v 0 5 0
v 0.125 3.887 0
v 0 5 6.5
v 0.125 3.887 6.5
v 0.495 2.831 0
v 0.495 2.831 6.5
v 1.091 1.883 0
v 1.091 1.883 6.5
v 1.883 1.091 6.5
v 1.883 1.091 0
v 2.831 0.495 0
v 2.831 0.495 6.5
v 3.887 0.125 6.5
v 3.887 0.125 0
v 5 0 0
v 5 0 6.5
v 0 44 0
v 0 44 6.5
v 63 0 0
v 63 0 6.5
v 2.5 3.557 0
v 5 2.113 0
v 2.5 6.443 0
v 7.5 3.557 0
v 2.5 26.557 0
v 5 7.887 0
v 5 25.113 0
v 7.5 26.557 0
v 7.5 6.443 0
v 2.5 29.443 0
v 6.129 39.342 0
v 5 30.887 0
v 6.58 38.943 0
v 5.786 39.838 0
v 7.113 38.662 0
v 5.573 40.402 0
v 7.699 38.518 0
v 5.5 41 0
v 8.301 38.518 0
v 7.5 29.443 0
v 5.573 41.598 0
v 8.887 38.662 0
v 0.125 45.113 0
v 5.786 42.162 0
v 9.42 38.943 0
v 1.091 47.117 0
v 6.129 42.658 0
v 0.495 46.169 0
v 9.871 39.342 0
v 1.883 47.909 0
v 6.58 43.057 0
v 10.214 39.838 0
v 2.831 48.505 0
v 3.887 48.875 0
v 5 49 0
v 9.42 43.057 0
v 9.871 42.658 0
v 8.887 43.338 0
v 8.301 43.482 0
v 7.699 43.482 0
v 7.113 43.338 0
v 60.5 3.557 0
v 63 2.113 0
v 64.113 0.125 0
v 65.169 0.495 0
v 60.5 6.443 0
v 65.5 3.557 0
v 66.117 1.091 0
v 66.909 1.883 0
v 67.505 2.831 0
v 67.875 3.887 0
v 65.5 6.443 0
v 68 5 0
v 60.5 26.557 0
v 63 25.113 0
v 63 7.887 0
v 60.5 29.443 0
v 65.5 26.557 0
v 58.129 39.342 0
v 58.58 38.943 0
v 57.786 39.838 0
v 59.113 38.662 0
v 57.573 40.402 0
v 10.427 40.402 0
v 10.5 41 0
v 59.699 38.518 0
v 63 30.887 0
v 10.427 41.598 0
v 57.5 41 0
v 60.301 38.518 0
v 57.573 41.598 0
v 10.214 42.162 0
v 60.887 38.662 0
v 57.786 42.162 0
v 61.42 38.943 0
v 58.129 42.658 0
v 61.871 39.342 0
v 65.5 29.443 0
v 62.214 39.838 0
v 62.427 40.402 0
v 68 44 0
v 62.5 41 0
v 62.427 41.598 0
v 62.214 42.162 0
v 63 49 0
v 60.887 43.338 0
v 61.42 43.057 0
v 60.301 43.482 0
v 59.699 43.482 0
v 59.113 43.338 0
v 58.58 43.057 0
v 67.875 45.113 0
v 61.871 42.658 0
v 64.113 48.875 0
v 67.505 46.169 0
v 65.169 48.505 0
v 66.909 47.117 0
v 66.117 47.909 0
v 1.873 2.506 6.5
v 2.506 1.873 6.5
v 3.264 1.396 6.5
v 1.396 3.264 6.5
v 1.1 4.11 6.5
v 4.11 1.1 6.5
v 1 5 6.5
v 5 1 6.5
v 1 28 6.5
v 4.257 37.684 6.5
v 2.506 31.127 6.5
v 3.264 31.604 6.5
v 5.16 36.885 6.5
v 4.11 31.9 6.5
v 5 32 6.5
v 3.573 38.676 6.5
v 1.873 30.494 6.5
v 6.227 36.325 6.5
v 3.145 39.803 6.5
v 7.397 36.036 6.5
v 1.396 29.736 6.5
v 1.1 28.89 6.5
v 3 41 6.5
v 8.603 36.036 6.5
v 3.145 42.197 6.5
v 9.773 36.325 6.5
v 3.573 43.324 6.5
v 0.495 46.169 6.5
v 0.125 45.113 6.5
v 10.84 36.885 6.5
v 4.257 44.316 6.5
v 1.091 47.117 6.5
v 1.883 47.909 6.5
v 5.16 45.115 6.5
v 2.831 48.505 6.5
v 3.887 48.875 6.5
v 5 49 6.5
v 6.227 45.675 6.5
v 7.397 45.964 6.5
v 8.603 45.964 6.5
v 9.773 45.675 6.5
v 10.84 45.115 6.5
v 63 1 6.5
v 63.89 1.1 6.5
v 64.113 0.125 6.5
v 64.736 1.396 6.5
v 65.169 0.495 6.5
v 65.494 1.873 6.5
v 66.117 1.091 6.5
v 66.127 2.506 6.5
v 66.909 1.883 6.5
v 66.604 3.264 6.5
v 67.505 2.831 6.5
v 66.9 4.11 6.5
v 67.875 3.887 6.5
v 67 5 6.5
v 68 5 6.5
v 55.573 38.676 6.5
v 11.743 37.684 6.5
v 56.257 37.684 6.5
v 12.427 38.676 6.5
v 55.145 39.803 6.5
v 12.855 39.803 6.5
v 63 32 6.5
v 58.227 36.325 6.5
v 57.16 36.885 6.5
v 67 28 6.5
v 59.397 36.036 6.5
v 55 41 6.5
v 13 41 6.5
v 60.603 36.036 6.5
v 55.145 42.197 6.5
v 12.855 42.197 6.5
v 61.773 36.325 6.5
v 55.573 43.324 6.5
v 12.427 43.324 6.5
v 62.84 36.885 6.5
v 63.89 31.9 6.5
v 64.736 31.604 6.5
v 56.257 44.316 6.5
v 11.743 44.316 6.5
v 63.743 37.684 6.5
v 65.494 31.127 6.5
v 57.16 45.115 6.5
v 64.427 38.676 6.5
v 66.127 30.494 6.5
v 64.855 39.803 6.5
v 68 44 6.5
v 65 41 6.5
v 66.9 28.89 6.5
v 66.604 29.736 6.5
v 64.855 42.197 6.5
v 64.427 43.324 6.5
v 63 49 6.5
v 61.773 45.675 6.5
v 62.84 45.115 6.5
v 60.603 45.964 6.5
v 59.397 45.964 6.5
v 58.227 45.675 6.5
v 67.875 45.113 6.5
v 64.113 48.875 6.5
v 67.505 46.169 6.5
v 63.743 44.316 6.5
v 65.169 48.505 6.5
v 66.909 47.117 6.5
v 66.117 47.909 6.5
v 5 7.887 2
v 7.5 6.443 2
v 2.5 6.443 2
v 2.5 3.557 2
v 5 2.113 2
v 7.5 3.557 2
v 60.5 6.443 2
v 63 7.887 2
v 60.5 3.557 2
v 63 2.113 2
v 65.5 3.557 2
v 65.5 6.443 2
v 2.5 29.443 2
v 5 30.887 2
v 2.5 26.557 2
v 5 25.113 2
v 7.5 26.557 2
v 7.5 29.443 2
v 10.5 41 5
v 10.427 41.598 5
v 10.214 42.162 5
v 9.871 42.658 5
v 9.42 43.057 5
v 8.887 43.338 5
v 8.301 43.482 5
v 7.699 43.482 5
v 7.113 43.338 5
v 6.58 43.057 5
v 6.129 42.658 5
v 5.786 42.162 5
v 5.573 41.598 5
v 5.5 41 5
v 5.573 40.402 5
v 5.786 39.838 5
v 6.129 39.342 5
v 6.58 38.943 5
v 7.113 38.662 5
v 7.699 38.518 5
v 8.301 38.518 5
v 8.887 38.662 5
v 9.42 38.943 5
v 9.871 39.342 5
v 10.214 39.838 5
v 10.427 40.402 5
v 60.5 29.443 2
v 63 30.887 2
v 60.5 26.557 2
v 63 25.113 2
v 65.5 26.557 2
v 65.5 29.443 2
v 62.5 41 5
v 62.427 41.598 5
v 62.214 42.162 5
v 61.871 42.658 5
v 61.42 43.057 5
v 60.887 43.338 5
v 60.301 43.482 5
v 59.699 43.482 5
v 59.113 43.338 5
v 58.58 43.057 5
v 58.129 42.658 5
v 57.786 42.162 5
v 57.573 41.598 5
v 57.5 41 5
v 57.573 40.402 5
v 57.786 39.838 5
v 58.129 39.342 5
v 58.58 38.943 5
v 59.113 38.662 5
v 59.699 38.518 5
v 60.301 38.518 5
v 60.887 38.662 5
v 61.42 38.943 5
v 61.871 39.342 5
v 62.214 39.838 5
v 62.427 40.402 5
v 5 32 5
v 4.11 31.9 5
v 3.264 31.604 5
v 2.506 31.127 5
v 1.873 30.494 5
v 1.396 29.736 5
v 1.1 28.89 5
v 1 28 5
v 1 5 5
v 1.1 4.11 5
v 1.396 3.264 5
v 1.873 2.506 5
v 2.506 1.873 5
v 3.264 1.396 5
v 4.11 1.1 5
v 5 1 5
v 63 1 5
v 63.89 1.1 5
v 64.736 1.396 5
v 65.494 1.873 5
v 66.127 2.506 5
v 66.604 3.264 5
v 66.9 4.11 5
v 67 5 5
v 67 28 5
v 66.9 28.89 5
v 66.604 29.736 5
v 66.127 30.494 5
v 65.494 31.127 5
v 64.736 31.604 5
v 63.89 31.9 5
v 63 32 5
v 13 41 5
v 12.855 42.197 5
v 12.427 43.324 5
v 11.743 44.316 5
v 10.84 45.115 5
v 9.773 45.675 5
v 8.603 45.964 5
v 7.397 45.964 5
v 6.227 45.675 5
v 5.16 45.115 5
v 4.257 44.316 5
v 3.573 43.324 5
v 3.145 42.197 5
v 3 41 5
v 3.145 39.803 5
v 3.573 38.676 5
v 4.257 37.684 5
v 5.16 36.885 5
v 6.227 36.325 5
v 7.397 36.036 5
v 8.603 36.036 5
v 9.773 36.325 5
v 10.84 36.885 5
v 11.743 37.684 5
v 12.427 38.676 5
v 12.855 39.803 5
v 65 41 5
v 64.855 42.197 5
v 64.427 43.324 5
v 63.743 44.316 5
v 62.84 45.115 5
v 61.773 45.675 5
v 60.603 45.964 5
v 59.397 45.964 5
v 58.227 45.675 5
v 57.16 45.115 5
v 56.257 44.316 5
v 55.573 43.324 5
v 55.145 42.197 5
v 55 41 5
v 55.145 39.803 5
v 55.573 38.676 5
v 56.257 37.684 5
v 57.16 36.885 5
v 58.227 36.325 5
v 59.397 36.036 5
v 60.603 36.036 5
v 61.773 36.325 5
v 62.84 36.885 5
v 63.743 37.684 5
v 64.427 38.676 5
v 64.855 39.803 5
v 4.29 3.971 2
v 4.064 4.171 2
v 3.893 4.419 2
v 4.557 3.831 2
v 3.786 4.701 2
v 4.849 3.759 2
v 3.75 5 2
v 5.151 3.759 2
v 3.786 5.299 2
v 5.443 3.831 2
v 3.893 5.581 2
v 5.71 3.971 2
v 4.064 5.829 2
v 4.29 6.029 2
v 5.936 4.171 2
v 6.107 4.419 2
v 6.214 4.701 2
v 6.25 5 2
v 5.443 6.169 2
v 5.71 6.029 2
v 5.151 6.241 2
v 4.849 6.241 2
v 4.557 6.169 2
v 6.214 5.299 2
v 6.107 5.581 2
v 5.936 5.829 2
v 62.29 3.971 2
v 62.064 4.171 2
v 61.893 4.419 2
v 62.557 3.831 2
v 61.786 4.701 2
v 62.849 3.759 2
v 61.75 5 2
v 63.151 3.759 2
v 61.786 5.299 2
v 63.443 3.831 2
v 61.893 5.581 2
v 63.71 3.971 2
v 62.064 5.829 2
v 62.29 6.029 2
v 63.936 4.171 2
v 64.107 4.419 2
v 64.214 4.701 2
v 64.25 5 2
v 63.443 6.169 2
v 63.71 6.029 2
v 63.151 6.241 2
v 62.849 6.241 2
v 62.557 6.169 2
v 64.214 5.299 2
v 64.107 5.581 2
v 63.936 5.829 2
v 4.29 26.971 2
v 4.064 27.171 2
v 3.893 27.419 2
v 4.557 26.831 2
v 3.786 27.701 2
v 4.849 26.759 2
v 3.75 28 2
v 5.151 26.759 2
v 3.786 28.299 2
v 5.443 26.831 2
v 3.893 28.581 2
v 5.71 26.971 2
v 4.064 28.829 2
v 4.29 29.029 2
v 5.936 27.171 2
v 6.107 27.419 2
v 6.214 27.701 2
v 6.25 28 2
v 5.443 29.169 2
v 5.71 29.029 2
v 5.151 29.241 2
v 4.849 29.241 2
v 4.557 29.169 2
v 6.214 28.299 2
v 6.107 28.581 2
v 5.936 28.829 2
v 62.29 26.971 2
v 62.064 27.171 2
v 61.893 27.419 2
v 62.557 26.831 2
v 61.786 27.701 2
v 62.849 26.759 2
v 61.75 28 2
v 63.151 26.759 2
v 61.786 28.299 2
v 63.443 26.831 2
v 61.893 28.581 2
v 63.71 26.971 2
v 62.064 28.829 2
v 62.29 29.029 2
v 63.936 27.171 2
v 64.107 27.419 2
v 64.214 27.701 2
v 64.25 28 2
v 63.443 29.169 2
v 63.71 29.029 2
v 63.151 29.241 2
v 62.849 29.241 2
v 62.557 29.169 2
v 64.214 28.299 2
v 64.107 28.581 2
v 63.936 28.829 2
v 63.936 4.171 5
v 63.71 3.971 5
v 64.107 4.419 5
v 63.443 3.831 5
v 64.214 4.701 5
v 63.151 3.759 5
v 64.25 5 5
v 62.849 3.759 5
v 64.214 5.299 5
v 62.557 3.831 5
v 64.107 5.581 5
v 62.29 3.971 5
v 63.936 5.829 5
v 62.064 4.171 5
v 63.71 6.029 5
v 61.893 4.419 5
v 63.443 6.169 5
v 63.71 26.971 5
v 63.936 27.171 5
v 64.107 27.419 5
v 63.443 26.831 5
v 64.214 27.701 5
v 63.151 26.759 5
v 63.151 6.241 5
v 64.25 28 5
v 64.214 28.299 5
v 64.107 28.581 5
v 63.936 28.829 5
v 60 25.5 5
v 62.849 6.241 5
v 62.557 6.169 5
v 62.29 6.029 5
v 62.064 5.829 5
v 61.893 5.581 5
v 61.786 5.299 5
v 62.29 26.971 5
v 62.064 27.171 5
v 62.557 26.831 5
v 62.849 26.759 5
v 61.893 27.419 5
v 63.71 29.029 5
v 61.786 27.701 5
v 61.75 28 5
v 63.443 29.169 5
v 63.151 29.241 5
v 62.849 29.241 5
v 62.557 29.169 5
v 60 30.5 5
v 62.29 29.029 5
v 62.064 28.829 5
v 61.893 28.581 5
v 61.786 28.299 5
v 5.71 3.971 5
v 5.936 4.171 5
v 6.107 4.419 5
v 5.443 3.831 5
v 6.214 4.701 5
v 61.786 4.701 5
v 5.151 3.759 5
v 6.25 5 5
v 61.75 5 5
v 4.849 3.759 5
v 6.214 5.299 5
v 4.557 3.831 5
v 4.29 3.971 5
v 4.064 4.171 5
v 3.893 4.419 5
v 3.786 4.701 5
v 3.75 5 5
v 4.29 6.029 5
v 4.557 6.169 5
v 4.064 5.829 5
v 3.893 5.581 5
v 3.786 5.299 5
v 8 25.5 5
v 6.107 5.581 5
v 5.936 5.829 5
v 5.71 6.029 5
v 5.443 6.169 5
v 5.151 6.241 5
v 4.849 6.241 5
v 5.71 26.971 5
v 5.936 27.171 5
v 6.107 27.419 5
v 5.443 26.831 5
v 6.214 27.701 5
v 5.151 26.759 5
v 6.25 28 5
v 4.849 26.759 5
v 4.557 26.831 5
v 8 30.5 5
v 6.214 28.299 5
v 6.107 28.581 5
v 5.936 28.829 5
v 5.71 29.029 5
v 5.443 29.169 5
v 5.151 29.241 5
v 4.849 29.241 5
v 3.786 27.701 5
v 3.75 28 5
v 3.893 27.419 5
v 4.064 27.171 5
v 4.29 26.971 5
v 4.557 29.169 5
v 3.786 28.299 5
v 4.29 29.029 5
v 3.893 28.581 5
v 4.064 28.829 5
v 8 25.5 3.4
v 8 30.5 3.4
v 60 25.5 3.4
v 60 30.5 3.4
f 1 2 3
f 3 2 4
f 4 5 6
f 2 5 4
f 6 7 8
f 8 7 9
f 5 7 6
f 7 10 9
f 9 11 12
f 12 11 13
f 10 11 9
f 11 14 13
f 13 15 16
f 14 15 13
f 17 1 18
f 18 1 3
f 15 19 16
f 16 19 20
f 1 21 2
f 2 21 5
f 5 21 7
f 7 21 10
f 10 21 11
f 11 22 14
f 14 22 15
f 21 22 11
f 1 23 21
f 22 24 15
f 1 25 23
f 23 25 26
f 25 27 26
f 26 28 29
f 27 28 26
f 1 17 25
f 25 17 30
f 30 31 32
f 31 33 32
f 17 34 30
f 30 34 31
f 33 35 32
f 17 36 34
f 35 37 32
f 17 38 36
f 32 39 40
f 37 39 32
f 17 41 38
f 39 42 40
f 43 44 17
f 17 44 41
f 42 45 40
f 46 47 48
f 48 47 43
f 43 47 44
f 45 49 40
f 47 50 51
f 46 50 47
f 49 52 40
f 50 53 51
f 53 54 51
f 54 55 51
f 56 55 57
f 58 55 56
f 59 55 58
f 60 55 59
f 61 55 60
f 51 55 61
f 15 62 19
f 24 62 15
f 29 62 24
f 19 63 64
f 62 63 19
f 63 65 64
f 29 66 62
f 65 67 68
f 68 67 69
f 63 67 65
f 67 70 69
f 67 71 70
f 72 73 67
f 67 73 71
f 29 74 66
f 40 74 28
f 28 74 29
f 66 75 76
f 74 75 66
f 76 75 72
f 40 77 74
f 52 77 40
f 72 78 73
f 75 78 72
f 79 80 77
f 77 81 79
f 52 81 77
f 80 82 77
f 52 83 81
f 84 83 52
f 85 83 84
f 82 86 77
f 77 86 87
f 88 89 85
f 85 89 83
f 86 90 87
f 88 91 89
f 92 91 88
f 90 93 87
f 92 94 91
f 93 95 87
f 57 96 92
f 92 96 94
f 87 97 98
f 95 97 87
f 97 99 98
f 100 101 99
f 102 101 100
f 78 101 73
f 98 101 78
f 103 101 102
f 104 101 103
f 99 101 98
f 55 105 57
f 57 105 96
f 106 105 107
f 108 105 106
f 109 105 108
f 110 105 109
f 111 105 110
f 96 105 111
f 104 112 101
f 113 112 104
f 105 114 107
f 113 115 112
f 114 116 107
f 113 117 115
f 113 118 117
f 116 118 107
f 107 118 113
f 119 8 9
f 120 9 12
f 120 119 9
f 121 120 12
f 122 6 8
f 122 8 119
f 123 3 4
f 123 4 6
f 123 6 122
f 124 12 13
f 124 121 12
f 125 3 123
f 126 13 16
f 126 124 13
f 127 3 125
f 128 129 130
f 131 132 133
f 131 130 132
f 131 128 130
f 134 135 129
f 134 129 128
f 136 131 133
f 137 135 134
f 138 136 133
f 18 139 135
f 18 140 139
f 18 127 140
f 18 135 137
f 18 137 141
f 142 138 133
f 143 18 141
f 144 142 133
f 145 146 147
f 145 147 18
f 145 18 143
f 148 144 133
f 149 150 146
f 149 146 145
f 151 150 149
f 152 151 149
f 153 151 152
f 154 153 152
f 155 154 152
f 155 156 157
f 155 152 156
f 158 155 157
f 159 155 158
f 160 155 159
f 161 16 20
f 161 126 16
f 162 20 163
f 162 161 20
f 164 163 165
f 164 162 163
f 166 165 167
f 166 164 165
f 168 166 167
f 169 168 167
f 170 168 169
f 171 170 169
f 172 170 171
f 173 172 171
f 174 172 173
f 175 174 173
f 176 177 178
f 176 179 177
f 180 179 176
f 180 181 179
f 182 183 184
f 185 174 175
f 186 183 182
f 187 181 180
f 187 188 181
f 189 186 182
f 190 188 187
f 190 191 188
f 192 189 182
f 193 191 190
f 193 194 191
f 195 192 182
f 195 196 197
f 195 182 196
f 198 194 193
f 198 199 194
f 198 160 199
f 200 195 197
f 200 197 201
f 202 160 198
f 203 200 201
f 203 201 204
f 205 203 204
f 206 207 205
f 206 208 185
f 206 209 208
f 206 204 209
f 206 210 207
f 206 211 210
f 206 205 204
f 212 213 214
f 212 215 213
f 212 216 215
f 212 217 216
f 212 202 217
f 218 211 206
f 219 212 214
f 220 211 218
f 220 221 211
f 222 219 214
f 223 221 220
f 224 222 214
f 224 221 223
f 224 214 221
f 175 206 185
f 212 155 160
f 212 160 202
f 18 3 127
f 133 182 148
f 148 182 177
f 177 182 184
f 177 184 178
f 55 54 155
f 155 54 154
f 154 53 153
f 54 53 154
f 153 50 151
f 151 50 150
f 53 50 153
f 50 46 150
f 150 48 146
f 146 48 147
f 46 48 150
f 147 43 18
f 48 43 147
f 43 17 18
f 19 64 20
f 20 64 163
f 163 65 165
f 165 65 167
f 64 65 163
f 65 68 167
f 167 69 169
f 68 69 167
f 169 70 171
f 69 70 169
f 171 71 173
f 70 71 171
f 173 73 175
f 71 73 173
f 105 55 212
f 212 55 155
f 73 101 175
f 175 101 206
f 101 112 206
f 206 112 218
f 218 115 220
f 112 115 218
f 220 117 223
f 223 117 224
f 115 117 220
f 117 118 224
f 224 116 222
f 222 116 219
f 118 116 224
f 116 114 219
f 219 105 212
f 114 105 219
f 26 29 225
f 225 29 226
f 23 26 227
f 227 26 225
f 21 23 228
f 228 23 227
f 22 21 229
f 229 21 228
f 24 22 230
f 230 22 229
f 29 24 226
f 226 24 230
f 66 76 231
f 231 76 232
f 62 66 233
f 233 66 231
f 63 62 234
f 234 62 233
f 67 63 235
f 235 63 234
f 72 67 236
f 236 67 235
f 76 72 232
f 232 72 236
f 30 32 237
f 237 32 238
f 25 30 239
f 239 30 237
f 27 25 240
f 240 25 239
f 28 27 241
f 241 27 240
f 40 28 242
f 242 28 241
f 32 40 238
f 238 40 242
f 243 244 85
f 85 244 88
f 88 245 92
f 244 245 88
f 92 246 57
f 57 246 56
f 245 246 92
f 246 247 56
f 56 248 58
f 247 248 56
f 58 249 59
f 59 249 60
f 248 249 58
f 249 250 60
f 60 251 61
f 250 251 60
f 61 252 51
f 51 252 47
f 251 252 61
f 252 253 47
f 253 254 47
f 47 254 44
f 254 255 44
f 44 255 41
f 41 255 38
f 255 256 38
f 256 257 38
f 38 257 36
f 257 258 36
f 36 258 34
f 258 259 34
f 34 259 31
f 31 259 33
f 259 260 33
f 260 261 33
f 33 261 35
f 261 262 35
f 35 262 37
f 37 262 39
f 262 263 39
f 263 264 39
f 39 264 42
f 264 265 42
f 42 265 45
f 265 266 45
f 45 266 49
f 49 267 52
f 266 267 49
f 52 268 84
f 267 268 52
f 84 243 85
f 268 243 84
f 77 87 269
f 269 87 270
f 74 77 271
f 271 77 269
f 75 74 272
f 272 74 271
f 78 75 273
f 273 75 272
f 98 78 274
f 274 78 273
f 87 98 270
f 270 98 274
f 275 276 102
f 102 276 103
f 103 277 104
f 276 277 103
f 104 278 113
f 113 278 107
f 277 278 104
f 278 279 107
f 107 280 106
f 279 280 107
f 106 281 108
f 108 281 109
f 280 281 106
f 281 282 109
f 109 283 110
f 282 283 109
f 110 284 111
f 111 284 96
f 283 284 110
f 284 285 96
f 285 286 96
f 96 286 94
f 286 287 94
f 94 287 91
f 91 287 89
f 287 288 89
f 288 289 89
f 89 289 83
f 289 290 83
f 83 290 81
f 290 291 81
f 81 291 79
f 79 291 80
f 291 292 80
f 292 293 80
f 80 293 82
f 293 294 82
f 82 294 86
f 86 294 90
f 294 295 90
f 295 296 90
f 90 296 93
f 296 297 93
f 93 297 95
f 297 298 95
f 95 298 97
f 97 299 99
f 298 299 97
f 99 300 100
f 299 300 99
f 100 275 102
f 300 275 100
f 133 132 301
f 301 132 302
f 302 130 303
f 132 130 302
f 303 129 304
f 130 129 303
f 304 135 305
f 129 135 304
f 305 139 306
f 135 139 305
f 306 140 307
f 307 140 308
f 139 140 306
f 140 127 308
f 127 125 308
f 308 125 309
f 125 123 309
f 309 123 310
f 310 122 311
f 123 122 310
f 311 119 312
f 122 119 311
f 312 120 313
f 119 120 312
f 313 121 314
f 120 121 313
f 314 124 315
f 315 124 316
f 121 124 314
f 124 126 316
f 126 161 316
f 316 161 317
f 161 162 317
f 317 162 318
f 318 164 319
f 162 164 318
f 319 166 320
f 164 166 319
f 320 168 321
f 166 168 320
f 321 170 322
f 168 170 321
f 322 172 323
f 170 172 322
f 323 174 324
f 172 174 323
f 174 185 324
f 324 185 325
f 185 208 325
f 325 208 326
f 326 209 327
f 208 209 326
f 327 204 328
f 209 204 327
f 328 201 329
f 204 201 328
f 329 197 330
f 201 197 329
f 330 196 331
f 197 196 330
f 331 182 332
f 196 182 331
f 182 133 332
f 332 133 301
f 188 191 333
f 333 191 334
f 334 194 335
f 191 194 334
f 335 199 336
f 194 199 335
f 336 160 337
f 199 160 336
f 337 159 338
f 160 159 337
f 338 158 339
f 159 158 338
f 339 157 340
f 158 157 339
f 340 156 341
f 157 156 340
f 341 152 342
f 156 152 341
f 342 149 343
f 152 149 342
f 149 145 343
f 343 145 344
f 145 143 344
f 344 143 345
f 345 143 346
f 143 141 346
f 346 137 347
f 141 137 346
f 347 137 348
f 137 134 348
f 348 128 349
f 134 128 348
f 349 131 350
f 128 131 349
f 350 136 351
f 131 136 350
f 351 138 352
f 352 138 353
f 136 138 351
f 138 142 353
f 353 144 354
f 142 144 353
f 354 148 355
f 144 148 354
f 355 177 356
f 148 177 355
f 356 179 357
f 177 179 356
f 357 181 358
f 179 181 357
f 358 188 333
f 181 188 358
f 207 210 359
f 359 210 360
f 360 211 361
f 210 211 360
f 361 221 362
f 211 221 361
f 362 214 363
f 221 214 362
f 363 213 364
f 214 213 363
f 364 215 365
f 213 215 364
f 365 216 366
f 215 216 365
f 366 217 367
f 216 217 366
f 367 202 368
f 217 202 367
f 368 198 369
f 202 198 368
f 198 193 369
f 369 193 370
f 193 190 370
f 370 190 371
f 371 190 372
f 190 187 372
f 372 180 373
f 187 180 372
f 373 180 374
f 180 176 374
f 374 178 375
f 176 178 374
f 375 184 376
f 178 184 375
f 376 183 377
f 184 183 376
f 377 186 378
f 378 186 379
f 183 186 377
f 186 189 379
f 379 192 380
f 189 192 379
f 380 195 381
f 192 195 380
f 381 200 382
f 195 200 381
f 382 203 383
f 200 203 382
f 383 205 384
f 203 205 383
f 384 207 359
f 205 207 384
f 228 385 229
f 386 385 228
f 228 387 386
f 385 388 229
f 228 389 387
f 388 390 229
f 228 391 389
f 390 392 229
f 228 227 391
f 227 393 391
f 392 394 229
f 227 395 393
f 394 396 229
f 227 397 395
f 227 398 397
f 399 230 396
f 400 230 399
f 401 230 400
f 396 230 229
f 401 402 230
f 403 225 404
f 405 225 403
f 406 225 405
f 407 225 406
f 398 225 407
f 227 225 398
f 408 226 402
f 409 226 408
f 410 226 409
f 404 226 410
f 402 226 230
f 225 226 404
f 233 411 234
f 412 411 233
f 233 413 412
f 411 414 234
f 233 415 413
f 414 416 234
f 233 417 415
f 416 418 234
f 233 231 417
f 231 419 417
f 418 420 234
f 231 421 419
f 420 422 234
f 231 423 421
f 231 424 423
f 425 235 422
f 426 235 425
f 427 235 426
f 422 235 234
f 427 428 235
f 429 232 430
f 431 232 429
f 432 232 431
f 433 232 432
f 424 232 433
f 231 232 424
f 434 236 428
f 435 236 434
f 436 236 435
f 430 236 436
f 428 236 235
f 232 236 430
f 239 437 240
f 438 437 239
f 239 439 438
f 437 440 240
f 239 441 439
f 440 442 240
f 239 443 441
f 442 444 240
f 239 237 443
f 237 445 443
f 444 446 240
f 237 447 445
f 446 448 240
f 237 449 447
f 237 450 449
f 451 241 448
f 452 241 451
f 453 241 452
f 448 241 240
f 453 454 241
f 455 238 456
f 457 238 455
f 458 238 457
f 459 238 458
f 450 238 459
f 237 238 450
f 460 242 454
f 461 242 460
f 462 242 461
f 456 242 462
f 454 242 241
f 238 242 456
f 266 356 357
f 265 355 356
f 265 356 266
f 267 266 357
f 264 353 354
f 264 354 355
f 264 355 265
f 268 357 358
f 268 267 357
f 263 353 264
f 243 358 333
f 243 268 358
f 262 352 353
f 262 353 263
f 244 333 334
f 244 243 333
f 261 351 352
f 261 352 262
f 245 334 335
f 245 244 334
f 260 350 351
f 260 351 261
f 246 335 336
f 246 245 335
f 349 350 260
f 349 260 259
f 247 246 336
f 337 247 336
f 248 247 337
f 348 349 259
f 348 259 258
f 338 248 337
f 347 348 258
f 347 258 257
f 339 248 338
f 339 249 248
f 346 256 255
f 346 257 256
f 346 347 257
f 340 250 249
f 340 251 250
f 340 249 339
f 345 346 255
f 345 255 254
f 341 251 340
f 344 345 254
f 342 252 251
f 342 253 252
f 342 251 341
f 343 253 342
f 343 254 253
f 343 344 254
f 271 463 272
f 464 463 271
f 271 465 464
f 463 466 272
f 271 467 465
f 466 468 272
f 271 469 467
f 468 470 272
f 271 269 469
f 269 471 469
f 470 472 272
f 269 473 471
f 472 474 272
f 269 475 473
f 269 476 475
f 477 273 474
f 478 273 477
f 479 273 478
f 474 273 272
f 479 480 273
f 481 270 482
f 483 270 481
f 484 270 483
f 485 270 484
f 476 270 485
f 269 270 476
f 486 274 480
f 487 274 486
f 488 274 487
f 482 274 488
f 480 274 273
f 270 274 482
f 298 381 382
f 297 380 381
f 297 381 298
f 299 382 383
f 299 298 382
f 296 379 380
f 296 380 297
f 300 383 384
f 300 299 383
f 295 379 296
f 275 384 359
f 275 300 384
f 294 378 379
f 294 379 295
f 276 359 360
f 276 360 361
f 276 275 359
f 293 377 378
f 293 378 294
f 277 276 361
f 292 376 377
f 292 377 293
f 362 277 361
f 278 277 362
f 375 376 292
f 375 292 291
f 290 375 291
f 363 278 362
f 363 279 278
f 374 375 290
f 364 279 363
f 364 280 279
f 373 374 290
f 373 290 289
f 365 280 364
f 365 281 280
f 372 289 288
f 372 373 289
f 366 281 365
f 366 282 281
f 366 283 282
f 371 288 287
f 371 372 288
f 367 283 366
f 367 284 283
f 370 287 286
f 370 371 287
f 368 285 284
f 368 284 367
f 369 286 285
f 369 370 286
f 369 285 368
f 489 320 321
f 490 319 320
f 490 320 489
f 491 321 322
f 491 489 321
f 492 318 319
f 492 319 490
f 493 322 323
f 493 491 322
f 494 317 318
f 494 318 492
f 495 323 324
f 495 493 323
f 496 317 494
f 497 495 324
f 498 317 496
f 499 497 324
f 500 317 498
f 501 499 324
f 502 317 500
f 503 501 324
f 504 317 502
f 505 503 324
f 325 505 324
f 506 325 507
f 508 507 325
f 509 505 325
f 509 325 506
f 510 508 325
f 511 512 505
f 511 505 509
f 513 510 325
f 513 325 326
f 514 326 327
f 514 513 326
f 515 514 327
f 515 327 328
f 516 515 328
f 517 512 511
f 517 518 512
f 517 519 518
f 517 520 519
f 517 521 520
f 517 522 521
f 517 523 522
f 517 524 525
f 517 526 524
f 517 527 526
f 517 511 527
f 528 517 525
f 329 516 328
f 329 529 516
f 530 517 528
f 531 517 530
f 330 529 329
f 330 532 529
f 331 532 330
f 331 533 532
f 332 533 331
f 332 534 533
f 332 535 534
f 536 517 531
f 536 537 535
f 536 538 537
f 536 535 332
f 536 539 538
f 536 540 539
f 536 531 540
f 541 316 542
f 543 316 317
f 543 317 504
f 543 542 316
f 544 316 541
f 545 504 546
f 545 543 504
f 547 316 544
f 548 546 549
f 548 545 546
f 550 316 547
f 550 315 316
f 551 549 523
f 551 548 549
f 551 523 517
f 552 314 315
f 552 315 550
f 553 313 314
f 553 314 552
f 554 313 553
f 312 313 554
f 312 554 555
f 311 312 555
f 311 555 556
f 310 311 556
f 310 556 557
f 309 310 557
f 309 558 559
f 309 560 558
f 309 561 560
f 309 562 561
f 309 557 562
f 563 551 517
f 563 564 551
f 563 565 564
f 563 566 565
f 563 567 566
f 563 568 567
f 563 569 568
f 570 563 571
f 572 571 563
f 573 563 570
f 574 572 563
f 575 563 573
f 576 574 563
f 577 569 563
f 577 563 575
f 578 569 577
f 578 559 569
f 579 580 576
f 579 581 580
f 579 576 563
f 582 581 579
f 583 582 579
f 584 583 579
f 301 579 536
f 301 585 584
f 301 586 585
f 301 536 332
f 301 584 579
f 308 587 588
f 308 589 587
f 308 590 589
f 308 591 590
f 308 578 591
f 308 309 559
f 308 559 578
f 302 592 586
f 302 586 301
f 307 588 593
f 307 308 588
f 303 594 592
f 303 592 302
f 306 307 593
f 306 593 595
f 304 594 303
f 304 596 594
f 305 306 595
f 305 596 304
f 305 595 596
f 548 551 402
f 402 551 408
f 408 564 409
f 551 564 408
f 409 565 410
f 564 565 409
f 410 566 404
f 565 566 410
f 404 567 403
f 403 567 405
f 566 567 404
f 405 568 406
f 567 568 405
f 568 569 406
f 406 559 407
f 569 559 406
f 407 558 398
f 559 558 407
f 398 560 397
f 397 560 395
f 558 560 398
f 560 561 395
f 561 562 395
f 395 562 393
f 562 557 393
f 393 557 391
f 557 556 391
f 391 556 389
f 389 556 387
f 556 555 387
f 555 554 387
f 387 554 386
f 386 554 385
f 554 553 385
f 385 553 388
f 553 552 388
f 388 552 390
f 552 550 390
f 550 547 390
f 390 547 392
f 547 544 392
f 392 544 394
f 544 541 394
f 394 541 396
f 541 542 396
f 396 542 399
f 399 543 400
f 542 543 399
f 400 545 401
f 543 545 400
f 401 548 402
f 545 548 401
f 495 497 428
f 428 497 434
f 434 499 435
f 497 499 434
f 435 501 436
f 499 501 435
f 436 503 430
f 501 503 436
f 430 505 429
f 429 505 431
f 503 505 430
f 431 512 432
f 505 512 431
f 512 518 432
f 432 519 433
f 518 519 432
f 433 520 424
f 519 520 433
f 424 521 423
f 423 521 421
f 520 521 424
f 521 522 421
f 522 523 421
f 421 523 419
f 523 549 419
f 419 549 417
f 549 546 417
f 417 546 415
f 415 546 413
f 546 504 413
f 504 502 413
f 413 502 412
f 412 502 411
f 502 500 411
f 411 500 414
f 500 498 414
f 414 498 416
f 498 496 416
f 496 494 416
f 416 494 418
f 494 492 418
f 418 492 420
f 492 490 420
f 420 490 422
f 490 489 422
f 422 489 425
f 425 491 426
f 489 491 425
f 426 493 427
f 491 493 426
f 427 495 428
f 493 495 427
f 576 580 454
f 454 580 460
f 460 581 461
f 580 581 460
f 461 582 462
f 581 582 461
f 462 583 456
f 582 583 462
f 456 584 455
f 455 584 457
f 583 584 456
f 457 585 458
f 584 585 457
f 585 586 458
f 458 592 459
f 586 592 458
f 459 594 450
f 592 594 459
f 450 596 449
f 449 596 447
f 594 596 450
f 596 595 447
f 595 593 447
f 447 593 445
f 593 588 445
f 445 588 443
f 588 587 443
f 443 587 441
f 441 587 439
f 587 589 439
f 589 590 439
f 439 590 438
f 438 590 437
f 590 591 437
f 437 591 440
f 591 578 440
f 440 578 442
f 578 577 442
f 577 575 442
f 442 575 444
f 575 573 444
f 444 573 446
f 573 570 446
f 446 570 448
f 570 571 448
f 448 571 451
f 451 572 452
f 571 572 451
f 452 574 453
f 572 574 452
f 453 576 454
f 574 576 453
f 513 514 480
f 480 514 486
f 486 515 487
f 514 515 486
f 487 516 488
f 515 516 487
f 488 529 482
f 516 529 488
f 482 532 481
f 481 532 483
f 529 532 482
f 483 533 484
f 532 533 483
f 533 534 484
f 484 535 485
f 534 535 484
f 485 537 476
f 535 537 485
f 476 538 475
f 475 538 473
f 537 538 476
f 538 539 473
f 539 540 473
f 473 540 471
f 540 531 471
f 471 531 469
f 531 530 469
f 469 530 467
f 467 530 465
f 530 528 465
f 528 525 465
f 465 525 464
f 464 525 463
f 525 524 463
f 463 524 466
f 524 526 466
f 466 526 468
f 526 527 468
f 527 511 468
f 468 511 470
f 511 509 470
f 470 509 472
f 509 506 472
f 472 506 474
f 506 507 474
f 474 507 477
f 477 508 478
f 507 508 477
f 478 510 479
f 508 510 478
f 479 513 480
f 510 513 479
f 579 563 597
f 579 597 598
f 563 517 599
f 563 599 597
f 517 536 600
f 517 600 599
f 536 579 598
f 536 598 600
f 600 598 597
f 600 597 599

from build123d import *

# Parameters (mm, degrees)
FACE005_W        = 5
FACE005_H        = 52
EXTRUDE005_DEPTH = 1.6
FACE004_R        = 5
EXTRUDE004_DEPTH = 1.5
EXTRUDE003_DEPTH = 2
FACE002_R        = 1.25
EXTRUDE002_DEPTH = 10
FACE001_R        = 2.5
EXTRUDE001_DEPTH = 10
EXTRUDE_DEPTH    = 6.5


with BuildPart() as extrude005:
    # Face005 → Extrude005 (new body)
    with BuildSketch(Plane(origin=(34, 28, 5), x_dir=(0, 1, 0), z_dir=(0, 0, 1))):
        Rectangle(FACE005_W, FACE005_H)
    extrude(amount=-EXTRUDE005_DEPTH)


with BuildPart() as extrude004:
    # Face004 → Extrude004 (new body)
    with BuildSketch(Plane(origin=(34, 16.5, 6.5), x_dir=(0, 1, 0), z_dir=(0, 0, 1))):
        with BuildLine():
            ThreePointArc((15.5, 29), (14.328427, 31.828427), (11.5, 33))
            Line((11.5, 33), (-11.5, 33))
            ThreePointArc((-11.5, 33), (-14.328427, 31.828427), (-15.5, 29))
            Line((-15.5, 29), (-15.5, -29))
            ThreePointArc((-15.5, -29), (-14.328427, -31.828427), (-11.5, -33))
            Line((-11.5, -33), (11.5, -33))
            ThreePointArc((11.5, -33), (14.328427, -31.828427), (15.5, -29))
            Line((15.5, -29), (15.5, 29))
        make_face()
        with Locations((24.5, 26)):
            Circle(FACE004_R)
        with Locations((24.5, -26)):
            Circle(FACE004_R)
    extrude(amount=-EXTRUDE004_DEPTH)


with BuildPart() as extrude003:
    # Face003 → Extrude003 (new body)
    with BuildSketch(Plane(origin=(5, 5, 0), x_dir=(0, 1, 0), z_dir=(0, 0, 1))):
        Polygon((-1.443376, -2.5), (1.443376, -2.5), (2.886751, 0), (1.443376, 2.5), (-1.443376, 2.5), (-2.886751, 0), align=None)
        Polygon((24.443376, -60.5), (25.886751, -58), (24.443376, -55.5), (21.556624, -55.5), (20.113249, -58), (21.556624, -60.5), align=None)
        Polygon((1.443376, -60.5), (2.886751, -58), (1.443376, -55.5), (-1.443376, -55.5), (-2.886751, -58), (-1.443376, -60.5), align=None)
        Polygon((24.443376, -2.5), (25.886751, 0), (24.443376, 2.5), (21.556624, 2.5), (20.113249, 0), (21.556624, -2.5), align=None)
    extrude(amount=EXTRUDE003_DEPTH)


with BuildPart() as extrude002:
    # Face002 → Extrude002 (new body)
    with BuildSketch(Plane(origin=(63, 28, 6.5), x_dir=(0, 1, 0), z_dir=(0, 0, 1))):
        Circle(FACE002_R)
        with Locations((-23, 0)):
            Circle(FACE002_R)
        with Locations((-23, 58)):
            Circle(FACE002_R)
        with Locations((0, 58)):
            Circle(FACE002_R)
    extrude(amount=-EXTRUDE002_DEPTH)


with BuildPart() as extrude001:
    # Face001 → Extrude001 (new body)
    with BuildSketch(Plane(origin=(60, 41, 6.5), x_dir=(0, 1, 0), z_dir=(0, 0, 1))):
        Circle(FACE001_R)
        with Locations((0, 52)):
            Circle(FACE001_R)
    extrude(amount=-EXTRUDE001_DEPTH)


with BuildPart() as cut004:
    # Face → Extrude (new body)
    with BuildSketch(Plane(origin=(34, 24.5, 0), x_dir=(0, 1, 0), z_dir=(0, 0, 1))):
        with BuildLine():
            ThreePointArc((-19.5, 34), (-23.035534, 32.535534), (-24.5, 29))
            Line((-24.5, 29), (-24.5, -29.000001))
            ThreePointArc((-24.5, -29.000001), (-23.035534, -32.535534), (-19.5, -34))
            Line((-19.5, -34), (19.5, -34))
            ThreePointArc((19.5, -34), (23.035534, -32.535534), (24.5, -29))
            Line((24.5, -29), (24.5, 29))
            ThreePointArc((24.5, 29), (23.035534, 32.535534), (19.5, 34))
            Line((19.5, 34), (-19.5, 34))
        make_face()
    extrude(amount=EXTRUDE_DEPTH)

    # Cut: cut Extrude001
    add(extrude001.part, mode=Mode.SUBTRACT)

    # Cut001: cut Extrude002
    add(extrude002.part, mode=Mode.SUBTRACT)

    # Cut002: cut Extrude003
    add(extrude003.part, mode=Mode.SUBTRACT)

    # Cut003: cut Extrude004
    add(extrude004.part, mode=Mode.SUBTRACT)

    # Cut004: cut Extrude005
    add(extrude005.part, mode=Mode.SUBTRACT)


solid = cut004.part
